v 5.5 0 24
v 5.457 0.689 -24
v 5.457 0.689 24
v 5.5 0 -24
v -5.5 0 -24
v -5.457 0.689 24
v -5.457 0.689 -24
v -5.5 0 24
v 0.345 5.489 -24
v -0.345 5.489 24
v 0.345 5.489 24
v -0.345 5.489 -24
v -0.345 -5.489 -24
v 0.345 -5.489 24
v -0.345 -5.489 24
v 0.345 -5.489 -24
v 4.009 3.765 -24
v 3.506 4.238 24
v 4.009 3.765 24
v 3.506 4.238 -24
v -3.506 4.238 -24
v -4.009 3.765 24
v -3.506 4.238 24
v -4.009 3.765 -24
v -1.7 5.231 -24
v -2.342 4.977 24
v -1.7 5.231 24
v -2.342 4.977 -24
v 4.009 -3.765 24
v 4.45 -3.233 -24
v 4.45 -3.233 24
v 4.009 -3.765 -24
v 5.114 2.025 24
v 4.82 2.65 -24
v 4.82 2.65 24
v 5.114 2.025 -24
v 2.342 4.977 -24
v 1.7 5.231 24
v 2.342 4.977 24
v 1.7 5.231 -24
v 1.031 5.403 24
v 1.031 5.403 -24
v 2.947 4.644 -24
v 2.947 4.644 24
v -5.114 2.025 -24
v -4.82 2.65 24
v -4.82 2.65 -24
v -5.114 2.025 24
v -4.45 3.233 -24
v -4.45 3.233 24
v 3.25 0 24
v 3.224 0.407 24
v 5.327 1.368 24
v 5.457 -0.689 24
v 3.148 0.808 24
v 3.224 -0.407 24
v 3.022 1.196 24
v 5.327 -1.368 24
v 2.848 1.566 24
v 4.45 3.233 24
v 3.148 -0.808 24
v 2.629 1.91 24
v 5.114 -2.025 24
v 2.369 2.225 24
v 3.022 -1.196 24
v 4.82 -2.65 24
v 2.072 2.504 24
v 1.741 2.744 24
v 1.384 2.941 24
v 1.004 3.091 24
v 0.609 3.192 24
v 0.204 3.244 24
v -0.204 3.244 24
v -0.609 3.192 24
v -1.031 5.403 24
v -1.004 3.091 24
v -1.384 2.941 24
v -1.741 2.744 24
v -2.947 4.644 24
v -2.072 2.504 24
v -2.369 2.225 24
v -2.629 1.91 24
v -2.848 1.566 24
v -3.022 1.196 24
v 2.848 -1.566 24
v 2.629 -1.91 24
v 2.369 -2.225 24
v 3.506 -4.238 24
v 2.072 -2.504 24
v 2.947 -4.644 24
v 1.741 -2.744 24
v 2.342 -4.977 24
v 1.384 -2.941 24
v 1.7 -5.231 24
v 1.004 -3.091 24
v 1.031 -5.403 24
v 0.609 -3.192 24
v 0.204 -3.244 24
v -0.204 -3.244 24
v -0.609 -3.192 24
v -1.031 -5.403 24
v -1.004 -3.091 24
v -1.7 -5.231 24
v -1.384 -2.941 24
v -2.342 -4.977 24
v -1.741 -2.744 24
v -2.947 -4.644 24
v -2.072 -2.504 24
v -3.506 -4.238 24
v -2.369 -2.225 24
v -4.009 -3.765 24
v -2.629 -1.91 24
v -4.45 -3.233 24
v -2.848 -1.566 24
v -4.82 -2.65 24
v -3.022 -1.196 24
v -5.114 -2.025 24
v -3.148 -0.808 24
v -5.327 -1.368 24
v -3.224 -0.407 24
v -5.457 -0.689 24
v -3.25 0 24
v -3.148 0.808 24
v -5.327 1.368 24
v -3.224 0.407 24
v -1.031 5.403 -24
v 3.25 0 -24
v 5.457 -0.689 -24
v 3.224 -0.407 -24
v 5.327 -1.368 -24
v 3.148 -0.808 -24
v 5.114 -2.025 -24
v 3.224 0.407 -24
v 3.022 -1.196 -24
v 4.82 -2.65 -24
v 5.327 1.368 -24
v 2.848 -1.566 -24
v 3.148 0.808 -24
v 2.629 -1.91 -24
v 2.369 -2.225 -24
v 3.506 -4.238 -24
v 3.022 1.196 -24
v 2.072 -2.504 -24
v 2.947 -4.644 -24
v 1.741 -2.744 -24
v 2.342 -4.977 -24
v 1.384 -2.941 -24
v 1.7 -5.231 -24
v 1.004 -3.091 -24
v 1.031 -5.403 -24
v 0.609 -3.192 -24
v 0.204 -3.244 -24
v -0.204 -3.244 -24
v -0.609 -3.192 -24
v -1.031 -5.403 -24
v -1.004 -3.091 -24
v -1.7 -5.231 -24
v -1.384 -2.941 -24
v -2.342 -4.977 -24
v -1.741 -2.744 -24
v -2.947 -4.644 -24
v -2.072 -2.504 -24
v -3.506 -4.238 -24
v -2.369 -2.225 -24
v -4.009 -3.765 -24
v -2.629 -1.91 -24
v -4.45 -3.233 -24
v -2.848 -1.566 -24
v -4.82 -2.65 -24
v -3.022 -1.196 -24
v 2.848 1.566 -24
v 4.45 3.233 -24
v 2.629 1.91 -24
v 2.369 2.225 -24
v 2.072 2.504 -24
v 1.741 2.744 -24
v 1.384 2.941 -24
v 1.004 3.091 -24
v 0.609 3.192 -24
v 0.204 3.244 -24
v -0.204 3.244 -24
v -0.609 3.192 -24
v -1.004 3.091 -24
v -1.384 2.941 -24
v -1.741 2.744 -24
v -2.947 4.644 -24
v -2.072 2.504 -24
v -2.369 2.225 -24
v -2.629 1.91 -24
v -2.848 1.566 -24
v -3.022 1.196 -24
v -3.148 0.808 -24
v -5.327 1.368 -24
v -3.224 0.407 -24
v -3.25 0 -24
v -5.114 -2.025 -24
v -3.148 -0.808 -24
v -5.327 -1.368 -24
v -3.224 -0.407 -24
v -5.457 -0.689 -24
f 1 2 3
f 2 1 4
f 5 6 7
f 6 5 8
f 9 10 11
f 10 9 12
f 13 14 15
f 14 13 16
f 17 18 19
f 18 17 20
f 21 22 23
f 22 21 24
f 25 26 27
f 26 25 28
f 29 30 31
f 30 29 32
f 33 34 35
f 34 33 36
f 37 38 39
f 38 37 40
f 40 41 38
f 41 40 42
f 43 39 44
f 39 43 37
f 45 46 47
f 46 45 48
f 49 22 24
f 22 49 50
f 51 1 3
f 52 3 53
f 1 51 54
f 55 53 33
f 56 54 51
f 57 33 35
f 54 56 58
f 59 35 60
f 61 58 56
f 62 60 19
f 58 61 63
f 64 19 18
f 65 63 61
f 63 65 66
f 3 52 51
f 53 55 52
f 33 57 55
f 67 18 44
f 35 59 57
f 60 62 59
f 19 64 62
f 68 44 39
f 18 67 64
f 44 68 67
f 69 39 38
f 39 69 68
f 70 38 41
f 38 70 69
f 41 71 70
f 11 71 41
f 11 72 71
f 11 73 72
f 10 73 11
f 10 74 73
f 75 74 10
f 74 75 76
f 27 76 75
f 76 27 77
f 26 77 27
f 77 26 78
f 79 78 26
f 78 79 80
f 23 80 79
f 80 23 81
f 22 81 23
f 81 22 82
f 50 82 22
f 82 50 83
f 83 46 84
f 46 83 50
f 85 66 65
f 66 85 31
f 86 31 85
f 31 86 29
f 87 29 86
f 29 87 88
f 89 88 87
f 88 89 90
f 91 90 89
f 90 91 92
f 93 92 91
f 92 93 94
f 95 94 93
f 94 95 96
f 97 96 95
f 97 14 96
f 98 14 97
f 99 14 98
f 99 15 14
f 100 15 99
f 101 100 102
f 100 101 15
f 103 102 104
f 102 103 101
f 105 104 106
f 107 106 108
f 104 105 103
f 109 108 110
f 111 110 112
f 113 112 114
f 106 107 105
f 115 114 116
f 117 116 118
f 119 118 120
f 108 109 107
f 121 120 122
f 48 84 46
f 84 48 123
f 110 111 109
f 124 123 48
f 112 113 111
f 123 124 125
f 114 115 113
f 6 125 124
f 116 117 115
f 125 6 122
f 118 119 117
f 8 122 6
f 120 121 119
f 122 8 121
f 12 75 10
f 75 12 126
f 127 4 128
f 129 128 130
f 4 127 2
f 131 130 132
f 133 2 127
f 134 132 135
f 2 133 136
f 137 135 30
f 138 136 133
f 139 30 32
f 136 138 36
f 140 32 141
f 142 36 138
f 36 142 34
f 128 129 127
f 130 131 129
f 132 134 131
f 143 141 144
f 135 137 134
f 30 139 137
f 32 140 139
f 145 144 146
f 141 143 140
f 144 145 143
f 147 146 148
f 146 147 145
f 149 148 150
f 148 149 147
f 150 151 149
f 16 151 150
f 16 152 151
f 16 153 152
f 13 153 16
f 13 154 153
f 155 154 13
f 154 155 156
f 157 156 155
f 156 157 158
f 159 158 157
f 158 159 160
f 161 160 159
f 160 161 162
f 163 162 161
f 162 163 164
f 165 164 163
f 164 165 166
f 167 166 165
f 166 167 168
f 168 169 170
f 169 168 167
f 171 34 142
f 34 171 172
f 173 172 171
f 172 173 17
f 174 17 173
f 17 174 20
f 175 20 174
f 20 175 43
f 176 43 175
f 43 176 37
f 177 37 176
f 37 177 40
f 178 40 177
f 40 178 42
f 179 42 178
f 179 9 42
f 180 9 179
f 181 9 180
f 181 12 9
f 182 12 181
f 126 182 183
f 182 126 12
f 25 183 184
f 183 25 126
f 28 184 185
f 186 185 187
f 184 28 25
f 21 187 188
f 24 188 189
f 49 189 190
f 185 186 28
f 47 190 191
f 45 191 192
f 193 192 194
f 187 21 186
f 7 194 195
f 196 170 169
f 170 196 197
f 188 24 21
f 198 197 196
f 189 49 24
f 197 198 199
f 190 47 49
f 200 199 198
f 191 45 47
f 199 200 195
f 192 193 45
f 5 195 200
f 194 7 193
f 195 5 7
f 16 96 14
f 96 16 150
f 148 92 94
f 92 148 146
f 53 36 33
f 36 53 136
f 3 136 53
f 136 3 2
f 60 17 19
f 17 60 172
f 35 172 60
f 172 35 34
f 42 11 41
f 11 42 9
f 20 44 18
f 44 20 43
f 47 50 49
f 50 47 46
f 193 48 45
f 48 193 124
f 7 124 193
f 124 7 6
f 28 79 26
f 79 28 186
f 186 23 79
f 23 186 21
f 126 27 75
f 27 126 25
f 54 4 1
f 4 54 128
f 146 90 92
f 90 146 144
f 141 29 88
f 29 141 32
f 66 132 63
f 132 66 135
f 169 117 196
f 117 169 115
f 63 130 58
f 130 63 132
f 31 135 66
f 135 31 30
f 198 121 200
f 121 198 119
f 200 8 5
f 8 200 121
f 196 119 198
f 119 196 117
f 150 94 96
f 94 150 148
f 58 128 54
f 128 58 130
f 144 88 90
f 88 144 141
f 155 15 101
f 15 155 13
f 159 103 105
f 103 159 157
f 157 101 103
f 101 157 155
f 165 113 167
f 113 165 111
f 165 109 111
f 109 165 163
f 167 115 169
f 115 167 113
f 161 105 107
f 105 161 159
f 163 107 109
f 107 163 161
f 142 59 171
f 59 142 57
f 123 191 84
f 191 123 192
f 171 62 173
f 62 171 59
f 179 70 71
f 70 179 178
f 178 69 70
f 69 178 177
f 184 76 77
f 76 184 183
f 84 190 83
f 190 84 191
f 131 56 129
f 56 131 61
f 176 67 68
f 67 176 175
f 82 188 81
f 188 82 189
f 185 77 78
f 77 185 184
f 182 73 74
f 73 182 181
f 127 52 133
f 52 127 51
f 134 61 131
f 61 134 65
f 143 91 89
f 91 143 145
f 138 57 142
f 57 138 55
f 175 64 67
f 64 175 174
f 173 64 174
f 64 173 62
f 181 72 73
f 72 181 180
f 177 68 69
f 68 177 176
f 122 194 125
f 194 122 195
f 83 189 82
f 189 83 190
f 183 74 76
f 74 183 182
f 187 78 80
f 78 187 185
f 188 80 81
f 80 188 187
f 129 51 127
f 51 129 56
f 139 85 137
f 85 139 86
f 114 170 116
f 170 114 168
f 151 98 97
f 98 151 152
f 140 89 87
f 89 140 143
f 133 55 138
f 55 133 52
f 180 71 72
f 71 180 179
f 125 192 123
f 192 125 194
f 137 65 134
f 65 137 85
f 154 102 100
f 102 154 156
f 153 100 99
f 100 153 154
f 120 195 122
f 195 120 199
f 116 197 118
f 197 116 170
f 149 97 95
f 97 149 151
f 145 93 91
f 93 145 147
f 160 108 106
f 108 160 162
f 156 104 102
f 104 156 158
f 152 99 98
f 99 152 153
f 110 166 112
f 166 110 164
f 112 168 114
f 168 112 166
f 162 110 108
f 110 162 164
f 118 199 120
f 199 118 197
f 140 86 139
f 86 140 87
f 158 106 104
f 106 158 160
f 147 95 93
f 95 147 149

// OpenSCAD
$fn = 50;


difference() {
	union() {
		translate(v = [0, 0, -24.0000000000]) {
			cylinder(h = 48, r = 5.5000000000);
		}
	}
	union() {
		translate(v = [0, 0, -100.0000000000]) {
			cylinder(h = 200, r = 3.2500000000);
		}
	}
}
